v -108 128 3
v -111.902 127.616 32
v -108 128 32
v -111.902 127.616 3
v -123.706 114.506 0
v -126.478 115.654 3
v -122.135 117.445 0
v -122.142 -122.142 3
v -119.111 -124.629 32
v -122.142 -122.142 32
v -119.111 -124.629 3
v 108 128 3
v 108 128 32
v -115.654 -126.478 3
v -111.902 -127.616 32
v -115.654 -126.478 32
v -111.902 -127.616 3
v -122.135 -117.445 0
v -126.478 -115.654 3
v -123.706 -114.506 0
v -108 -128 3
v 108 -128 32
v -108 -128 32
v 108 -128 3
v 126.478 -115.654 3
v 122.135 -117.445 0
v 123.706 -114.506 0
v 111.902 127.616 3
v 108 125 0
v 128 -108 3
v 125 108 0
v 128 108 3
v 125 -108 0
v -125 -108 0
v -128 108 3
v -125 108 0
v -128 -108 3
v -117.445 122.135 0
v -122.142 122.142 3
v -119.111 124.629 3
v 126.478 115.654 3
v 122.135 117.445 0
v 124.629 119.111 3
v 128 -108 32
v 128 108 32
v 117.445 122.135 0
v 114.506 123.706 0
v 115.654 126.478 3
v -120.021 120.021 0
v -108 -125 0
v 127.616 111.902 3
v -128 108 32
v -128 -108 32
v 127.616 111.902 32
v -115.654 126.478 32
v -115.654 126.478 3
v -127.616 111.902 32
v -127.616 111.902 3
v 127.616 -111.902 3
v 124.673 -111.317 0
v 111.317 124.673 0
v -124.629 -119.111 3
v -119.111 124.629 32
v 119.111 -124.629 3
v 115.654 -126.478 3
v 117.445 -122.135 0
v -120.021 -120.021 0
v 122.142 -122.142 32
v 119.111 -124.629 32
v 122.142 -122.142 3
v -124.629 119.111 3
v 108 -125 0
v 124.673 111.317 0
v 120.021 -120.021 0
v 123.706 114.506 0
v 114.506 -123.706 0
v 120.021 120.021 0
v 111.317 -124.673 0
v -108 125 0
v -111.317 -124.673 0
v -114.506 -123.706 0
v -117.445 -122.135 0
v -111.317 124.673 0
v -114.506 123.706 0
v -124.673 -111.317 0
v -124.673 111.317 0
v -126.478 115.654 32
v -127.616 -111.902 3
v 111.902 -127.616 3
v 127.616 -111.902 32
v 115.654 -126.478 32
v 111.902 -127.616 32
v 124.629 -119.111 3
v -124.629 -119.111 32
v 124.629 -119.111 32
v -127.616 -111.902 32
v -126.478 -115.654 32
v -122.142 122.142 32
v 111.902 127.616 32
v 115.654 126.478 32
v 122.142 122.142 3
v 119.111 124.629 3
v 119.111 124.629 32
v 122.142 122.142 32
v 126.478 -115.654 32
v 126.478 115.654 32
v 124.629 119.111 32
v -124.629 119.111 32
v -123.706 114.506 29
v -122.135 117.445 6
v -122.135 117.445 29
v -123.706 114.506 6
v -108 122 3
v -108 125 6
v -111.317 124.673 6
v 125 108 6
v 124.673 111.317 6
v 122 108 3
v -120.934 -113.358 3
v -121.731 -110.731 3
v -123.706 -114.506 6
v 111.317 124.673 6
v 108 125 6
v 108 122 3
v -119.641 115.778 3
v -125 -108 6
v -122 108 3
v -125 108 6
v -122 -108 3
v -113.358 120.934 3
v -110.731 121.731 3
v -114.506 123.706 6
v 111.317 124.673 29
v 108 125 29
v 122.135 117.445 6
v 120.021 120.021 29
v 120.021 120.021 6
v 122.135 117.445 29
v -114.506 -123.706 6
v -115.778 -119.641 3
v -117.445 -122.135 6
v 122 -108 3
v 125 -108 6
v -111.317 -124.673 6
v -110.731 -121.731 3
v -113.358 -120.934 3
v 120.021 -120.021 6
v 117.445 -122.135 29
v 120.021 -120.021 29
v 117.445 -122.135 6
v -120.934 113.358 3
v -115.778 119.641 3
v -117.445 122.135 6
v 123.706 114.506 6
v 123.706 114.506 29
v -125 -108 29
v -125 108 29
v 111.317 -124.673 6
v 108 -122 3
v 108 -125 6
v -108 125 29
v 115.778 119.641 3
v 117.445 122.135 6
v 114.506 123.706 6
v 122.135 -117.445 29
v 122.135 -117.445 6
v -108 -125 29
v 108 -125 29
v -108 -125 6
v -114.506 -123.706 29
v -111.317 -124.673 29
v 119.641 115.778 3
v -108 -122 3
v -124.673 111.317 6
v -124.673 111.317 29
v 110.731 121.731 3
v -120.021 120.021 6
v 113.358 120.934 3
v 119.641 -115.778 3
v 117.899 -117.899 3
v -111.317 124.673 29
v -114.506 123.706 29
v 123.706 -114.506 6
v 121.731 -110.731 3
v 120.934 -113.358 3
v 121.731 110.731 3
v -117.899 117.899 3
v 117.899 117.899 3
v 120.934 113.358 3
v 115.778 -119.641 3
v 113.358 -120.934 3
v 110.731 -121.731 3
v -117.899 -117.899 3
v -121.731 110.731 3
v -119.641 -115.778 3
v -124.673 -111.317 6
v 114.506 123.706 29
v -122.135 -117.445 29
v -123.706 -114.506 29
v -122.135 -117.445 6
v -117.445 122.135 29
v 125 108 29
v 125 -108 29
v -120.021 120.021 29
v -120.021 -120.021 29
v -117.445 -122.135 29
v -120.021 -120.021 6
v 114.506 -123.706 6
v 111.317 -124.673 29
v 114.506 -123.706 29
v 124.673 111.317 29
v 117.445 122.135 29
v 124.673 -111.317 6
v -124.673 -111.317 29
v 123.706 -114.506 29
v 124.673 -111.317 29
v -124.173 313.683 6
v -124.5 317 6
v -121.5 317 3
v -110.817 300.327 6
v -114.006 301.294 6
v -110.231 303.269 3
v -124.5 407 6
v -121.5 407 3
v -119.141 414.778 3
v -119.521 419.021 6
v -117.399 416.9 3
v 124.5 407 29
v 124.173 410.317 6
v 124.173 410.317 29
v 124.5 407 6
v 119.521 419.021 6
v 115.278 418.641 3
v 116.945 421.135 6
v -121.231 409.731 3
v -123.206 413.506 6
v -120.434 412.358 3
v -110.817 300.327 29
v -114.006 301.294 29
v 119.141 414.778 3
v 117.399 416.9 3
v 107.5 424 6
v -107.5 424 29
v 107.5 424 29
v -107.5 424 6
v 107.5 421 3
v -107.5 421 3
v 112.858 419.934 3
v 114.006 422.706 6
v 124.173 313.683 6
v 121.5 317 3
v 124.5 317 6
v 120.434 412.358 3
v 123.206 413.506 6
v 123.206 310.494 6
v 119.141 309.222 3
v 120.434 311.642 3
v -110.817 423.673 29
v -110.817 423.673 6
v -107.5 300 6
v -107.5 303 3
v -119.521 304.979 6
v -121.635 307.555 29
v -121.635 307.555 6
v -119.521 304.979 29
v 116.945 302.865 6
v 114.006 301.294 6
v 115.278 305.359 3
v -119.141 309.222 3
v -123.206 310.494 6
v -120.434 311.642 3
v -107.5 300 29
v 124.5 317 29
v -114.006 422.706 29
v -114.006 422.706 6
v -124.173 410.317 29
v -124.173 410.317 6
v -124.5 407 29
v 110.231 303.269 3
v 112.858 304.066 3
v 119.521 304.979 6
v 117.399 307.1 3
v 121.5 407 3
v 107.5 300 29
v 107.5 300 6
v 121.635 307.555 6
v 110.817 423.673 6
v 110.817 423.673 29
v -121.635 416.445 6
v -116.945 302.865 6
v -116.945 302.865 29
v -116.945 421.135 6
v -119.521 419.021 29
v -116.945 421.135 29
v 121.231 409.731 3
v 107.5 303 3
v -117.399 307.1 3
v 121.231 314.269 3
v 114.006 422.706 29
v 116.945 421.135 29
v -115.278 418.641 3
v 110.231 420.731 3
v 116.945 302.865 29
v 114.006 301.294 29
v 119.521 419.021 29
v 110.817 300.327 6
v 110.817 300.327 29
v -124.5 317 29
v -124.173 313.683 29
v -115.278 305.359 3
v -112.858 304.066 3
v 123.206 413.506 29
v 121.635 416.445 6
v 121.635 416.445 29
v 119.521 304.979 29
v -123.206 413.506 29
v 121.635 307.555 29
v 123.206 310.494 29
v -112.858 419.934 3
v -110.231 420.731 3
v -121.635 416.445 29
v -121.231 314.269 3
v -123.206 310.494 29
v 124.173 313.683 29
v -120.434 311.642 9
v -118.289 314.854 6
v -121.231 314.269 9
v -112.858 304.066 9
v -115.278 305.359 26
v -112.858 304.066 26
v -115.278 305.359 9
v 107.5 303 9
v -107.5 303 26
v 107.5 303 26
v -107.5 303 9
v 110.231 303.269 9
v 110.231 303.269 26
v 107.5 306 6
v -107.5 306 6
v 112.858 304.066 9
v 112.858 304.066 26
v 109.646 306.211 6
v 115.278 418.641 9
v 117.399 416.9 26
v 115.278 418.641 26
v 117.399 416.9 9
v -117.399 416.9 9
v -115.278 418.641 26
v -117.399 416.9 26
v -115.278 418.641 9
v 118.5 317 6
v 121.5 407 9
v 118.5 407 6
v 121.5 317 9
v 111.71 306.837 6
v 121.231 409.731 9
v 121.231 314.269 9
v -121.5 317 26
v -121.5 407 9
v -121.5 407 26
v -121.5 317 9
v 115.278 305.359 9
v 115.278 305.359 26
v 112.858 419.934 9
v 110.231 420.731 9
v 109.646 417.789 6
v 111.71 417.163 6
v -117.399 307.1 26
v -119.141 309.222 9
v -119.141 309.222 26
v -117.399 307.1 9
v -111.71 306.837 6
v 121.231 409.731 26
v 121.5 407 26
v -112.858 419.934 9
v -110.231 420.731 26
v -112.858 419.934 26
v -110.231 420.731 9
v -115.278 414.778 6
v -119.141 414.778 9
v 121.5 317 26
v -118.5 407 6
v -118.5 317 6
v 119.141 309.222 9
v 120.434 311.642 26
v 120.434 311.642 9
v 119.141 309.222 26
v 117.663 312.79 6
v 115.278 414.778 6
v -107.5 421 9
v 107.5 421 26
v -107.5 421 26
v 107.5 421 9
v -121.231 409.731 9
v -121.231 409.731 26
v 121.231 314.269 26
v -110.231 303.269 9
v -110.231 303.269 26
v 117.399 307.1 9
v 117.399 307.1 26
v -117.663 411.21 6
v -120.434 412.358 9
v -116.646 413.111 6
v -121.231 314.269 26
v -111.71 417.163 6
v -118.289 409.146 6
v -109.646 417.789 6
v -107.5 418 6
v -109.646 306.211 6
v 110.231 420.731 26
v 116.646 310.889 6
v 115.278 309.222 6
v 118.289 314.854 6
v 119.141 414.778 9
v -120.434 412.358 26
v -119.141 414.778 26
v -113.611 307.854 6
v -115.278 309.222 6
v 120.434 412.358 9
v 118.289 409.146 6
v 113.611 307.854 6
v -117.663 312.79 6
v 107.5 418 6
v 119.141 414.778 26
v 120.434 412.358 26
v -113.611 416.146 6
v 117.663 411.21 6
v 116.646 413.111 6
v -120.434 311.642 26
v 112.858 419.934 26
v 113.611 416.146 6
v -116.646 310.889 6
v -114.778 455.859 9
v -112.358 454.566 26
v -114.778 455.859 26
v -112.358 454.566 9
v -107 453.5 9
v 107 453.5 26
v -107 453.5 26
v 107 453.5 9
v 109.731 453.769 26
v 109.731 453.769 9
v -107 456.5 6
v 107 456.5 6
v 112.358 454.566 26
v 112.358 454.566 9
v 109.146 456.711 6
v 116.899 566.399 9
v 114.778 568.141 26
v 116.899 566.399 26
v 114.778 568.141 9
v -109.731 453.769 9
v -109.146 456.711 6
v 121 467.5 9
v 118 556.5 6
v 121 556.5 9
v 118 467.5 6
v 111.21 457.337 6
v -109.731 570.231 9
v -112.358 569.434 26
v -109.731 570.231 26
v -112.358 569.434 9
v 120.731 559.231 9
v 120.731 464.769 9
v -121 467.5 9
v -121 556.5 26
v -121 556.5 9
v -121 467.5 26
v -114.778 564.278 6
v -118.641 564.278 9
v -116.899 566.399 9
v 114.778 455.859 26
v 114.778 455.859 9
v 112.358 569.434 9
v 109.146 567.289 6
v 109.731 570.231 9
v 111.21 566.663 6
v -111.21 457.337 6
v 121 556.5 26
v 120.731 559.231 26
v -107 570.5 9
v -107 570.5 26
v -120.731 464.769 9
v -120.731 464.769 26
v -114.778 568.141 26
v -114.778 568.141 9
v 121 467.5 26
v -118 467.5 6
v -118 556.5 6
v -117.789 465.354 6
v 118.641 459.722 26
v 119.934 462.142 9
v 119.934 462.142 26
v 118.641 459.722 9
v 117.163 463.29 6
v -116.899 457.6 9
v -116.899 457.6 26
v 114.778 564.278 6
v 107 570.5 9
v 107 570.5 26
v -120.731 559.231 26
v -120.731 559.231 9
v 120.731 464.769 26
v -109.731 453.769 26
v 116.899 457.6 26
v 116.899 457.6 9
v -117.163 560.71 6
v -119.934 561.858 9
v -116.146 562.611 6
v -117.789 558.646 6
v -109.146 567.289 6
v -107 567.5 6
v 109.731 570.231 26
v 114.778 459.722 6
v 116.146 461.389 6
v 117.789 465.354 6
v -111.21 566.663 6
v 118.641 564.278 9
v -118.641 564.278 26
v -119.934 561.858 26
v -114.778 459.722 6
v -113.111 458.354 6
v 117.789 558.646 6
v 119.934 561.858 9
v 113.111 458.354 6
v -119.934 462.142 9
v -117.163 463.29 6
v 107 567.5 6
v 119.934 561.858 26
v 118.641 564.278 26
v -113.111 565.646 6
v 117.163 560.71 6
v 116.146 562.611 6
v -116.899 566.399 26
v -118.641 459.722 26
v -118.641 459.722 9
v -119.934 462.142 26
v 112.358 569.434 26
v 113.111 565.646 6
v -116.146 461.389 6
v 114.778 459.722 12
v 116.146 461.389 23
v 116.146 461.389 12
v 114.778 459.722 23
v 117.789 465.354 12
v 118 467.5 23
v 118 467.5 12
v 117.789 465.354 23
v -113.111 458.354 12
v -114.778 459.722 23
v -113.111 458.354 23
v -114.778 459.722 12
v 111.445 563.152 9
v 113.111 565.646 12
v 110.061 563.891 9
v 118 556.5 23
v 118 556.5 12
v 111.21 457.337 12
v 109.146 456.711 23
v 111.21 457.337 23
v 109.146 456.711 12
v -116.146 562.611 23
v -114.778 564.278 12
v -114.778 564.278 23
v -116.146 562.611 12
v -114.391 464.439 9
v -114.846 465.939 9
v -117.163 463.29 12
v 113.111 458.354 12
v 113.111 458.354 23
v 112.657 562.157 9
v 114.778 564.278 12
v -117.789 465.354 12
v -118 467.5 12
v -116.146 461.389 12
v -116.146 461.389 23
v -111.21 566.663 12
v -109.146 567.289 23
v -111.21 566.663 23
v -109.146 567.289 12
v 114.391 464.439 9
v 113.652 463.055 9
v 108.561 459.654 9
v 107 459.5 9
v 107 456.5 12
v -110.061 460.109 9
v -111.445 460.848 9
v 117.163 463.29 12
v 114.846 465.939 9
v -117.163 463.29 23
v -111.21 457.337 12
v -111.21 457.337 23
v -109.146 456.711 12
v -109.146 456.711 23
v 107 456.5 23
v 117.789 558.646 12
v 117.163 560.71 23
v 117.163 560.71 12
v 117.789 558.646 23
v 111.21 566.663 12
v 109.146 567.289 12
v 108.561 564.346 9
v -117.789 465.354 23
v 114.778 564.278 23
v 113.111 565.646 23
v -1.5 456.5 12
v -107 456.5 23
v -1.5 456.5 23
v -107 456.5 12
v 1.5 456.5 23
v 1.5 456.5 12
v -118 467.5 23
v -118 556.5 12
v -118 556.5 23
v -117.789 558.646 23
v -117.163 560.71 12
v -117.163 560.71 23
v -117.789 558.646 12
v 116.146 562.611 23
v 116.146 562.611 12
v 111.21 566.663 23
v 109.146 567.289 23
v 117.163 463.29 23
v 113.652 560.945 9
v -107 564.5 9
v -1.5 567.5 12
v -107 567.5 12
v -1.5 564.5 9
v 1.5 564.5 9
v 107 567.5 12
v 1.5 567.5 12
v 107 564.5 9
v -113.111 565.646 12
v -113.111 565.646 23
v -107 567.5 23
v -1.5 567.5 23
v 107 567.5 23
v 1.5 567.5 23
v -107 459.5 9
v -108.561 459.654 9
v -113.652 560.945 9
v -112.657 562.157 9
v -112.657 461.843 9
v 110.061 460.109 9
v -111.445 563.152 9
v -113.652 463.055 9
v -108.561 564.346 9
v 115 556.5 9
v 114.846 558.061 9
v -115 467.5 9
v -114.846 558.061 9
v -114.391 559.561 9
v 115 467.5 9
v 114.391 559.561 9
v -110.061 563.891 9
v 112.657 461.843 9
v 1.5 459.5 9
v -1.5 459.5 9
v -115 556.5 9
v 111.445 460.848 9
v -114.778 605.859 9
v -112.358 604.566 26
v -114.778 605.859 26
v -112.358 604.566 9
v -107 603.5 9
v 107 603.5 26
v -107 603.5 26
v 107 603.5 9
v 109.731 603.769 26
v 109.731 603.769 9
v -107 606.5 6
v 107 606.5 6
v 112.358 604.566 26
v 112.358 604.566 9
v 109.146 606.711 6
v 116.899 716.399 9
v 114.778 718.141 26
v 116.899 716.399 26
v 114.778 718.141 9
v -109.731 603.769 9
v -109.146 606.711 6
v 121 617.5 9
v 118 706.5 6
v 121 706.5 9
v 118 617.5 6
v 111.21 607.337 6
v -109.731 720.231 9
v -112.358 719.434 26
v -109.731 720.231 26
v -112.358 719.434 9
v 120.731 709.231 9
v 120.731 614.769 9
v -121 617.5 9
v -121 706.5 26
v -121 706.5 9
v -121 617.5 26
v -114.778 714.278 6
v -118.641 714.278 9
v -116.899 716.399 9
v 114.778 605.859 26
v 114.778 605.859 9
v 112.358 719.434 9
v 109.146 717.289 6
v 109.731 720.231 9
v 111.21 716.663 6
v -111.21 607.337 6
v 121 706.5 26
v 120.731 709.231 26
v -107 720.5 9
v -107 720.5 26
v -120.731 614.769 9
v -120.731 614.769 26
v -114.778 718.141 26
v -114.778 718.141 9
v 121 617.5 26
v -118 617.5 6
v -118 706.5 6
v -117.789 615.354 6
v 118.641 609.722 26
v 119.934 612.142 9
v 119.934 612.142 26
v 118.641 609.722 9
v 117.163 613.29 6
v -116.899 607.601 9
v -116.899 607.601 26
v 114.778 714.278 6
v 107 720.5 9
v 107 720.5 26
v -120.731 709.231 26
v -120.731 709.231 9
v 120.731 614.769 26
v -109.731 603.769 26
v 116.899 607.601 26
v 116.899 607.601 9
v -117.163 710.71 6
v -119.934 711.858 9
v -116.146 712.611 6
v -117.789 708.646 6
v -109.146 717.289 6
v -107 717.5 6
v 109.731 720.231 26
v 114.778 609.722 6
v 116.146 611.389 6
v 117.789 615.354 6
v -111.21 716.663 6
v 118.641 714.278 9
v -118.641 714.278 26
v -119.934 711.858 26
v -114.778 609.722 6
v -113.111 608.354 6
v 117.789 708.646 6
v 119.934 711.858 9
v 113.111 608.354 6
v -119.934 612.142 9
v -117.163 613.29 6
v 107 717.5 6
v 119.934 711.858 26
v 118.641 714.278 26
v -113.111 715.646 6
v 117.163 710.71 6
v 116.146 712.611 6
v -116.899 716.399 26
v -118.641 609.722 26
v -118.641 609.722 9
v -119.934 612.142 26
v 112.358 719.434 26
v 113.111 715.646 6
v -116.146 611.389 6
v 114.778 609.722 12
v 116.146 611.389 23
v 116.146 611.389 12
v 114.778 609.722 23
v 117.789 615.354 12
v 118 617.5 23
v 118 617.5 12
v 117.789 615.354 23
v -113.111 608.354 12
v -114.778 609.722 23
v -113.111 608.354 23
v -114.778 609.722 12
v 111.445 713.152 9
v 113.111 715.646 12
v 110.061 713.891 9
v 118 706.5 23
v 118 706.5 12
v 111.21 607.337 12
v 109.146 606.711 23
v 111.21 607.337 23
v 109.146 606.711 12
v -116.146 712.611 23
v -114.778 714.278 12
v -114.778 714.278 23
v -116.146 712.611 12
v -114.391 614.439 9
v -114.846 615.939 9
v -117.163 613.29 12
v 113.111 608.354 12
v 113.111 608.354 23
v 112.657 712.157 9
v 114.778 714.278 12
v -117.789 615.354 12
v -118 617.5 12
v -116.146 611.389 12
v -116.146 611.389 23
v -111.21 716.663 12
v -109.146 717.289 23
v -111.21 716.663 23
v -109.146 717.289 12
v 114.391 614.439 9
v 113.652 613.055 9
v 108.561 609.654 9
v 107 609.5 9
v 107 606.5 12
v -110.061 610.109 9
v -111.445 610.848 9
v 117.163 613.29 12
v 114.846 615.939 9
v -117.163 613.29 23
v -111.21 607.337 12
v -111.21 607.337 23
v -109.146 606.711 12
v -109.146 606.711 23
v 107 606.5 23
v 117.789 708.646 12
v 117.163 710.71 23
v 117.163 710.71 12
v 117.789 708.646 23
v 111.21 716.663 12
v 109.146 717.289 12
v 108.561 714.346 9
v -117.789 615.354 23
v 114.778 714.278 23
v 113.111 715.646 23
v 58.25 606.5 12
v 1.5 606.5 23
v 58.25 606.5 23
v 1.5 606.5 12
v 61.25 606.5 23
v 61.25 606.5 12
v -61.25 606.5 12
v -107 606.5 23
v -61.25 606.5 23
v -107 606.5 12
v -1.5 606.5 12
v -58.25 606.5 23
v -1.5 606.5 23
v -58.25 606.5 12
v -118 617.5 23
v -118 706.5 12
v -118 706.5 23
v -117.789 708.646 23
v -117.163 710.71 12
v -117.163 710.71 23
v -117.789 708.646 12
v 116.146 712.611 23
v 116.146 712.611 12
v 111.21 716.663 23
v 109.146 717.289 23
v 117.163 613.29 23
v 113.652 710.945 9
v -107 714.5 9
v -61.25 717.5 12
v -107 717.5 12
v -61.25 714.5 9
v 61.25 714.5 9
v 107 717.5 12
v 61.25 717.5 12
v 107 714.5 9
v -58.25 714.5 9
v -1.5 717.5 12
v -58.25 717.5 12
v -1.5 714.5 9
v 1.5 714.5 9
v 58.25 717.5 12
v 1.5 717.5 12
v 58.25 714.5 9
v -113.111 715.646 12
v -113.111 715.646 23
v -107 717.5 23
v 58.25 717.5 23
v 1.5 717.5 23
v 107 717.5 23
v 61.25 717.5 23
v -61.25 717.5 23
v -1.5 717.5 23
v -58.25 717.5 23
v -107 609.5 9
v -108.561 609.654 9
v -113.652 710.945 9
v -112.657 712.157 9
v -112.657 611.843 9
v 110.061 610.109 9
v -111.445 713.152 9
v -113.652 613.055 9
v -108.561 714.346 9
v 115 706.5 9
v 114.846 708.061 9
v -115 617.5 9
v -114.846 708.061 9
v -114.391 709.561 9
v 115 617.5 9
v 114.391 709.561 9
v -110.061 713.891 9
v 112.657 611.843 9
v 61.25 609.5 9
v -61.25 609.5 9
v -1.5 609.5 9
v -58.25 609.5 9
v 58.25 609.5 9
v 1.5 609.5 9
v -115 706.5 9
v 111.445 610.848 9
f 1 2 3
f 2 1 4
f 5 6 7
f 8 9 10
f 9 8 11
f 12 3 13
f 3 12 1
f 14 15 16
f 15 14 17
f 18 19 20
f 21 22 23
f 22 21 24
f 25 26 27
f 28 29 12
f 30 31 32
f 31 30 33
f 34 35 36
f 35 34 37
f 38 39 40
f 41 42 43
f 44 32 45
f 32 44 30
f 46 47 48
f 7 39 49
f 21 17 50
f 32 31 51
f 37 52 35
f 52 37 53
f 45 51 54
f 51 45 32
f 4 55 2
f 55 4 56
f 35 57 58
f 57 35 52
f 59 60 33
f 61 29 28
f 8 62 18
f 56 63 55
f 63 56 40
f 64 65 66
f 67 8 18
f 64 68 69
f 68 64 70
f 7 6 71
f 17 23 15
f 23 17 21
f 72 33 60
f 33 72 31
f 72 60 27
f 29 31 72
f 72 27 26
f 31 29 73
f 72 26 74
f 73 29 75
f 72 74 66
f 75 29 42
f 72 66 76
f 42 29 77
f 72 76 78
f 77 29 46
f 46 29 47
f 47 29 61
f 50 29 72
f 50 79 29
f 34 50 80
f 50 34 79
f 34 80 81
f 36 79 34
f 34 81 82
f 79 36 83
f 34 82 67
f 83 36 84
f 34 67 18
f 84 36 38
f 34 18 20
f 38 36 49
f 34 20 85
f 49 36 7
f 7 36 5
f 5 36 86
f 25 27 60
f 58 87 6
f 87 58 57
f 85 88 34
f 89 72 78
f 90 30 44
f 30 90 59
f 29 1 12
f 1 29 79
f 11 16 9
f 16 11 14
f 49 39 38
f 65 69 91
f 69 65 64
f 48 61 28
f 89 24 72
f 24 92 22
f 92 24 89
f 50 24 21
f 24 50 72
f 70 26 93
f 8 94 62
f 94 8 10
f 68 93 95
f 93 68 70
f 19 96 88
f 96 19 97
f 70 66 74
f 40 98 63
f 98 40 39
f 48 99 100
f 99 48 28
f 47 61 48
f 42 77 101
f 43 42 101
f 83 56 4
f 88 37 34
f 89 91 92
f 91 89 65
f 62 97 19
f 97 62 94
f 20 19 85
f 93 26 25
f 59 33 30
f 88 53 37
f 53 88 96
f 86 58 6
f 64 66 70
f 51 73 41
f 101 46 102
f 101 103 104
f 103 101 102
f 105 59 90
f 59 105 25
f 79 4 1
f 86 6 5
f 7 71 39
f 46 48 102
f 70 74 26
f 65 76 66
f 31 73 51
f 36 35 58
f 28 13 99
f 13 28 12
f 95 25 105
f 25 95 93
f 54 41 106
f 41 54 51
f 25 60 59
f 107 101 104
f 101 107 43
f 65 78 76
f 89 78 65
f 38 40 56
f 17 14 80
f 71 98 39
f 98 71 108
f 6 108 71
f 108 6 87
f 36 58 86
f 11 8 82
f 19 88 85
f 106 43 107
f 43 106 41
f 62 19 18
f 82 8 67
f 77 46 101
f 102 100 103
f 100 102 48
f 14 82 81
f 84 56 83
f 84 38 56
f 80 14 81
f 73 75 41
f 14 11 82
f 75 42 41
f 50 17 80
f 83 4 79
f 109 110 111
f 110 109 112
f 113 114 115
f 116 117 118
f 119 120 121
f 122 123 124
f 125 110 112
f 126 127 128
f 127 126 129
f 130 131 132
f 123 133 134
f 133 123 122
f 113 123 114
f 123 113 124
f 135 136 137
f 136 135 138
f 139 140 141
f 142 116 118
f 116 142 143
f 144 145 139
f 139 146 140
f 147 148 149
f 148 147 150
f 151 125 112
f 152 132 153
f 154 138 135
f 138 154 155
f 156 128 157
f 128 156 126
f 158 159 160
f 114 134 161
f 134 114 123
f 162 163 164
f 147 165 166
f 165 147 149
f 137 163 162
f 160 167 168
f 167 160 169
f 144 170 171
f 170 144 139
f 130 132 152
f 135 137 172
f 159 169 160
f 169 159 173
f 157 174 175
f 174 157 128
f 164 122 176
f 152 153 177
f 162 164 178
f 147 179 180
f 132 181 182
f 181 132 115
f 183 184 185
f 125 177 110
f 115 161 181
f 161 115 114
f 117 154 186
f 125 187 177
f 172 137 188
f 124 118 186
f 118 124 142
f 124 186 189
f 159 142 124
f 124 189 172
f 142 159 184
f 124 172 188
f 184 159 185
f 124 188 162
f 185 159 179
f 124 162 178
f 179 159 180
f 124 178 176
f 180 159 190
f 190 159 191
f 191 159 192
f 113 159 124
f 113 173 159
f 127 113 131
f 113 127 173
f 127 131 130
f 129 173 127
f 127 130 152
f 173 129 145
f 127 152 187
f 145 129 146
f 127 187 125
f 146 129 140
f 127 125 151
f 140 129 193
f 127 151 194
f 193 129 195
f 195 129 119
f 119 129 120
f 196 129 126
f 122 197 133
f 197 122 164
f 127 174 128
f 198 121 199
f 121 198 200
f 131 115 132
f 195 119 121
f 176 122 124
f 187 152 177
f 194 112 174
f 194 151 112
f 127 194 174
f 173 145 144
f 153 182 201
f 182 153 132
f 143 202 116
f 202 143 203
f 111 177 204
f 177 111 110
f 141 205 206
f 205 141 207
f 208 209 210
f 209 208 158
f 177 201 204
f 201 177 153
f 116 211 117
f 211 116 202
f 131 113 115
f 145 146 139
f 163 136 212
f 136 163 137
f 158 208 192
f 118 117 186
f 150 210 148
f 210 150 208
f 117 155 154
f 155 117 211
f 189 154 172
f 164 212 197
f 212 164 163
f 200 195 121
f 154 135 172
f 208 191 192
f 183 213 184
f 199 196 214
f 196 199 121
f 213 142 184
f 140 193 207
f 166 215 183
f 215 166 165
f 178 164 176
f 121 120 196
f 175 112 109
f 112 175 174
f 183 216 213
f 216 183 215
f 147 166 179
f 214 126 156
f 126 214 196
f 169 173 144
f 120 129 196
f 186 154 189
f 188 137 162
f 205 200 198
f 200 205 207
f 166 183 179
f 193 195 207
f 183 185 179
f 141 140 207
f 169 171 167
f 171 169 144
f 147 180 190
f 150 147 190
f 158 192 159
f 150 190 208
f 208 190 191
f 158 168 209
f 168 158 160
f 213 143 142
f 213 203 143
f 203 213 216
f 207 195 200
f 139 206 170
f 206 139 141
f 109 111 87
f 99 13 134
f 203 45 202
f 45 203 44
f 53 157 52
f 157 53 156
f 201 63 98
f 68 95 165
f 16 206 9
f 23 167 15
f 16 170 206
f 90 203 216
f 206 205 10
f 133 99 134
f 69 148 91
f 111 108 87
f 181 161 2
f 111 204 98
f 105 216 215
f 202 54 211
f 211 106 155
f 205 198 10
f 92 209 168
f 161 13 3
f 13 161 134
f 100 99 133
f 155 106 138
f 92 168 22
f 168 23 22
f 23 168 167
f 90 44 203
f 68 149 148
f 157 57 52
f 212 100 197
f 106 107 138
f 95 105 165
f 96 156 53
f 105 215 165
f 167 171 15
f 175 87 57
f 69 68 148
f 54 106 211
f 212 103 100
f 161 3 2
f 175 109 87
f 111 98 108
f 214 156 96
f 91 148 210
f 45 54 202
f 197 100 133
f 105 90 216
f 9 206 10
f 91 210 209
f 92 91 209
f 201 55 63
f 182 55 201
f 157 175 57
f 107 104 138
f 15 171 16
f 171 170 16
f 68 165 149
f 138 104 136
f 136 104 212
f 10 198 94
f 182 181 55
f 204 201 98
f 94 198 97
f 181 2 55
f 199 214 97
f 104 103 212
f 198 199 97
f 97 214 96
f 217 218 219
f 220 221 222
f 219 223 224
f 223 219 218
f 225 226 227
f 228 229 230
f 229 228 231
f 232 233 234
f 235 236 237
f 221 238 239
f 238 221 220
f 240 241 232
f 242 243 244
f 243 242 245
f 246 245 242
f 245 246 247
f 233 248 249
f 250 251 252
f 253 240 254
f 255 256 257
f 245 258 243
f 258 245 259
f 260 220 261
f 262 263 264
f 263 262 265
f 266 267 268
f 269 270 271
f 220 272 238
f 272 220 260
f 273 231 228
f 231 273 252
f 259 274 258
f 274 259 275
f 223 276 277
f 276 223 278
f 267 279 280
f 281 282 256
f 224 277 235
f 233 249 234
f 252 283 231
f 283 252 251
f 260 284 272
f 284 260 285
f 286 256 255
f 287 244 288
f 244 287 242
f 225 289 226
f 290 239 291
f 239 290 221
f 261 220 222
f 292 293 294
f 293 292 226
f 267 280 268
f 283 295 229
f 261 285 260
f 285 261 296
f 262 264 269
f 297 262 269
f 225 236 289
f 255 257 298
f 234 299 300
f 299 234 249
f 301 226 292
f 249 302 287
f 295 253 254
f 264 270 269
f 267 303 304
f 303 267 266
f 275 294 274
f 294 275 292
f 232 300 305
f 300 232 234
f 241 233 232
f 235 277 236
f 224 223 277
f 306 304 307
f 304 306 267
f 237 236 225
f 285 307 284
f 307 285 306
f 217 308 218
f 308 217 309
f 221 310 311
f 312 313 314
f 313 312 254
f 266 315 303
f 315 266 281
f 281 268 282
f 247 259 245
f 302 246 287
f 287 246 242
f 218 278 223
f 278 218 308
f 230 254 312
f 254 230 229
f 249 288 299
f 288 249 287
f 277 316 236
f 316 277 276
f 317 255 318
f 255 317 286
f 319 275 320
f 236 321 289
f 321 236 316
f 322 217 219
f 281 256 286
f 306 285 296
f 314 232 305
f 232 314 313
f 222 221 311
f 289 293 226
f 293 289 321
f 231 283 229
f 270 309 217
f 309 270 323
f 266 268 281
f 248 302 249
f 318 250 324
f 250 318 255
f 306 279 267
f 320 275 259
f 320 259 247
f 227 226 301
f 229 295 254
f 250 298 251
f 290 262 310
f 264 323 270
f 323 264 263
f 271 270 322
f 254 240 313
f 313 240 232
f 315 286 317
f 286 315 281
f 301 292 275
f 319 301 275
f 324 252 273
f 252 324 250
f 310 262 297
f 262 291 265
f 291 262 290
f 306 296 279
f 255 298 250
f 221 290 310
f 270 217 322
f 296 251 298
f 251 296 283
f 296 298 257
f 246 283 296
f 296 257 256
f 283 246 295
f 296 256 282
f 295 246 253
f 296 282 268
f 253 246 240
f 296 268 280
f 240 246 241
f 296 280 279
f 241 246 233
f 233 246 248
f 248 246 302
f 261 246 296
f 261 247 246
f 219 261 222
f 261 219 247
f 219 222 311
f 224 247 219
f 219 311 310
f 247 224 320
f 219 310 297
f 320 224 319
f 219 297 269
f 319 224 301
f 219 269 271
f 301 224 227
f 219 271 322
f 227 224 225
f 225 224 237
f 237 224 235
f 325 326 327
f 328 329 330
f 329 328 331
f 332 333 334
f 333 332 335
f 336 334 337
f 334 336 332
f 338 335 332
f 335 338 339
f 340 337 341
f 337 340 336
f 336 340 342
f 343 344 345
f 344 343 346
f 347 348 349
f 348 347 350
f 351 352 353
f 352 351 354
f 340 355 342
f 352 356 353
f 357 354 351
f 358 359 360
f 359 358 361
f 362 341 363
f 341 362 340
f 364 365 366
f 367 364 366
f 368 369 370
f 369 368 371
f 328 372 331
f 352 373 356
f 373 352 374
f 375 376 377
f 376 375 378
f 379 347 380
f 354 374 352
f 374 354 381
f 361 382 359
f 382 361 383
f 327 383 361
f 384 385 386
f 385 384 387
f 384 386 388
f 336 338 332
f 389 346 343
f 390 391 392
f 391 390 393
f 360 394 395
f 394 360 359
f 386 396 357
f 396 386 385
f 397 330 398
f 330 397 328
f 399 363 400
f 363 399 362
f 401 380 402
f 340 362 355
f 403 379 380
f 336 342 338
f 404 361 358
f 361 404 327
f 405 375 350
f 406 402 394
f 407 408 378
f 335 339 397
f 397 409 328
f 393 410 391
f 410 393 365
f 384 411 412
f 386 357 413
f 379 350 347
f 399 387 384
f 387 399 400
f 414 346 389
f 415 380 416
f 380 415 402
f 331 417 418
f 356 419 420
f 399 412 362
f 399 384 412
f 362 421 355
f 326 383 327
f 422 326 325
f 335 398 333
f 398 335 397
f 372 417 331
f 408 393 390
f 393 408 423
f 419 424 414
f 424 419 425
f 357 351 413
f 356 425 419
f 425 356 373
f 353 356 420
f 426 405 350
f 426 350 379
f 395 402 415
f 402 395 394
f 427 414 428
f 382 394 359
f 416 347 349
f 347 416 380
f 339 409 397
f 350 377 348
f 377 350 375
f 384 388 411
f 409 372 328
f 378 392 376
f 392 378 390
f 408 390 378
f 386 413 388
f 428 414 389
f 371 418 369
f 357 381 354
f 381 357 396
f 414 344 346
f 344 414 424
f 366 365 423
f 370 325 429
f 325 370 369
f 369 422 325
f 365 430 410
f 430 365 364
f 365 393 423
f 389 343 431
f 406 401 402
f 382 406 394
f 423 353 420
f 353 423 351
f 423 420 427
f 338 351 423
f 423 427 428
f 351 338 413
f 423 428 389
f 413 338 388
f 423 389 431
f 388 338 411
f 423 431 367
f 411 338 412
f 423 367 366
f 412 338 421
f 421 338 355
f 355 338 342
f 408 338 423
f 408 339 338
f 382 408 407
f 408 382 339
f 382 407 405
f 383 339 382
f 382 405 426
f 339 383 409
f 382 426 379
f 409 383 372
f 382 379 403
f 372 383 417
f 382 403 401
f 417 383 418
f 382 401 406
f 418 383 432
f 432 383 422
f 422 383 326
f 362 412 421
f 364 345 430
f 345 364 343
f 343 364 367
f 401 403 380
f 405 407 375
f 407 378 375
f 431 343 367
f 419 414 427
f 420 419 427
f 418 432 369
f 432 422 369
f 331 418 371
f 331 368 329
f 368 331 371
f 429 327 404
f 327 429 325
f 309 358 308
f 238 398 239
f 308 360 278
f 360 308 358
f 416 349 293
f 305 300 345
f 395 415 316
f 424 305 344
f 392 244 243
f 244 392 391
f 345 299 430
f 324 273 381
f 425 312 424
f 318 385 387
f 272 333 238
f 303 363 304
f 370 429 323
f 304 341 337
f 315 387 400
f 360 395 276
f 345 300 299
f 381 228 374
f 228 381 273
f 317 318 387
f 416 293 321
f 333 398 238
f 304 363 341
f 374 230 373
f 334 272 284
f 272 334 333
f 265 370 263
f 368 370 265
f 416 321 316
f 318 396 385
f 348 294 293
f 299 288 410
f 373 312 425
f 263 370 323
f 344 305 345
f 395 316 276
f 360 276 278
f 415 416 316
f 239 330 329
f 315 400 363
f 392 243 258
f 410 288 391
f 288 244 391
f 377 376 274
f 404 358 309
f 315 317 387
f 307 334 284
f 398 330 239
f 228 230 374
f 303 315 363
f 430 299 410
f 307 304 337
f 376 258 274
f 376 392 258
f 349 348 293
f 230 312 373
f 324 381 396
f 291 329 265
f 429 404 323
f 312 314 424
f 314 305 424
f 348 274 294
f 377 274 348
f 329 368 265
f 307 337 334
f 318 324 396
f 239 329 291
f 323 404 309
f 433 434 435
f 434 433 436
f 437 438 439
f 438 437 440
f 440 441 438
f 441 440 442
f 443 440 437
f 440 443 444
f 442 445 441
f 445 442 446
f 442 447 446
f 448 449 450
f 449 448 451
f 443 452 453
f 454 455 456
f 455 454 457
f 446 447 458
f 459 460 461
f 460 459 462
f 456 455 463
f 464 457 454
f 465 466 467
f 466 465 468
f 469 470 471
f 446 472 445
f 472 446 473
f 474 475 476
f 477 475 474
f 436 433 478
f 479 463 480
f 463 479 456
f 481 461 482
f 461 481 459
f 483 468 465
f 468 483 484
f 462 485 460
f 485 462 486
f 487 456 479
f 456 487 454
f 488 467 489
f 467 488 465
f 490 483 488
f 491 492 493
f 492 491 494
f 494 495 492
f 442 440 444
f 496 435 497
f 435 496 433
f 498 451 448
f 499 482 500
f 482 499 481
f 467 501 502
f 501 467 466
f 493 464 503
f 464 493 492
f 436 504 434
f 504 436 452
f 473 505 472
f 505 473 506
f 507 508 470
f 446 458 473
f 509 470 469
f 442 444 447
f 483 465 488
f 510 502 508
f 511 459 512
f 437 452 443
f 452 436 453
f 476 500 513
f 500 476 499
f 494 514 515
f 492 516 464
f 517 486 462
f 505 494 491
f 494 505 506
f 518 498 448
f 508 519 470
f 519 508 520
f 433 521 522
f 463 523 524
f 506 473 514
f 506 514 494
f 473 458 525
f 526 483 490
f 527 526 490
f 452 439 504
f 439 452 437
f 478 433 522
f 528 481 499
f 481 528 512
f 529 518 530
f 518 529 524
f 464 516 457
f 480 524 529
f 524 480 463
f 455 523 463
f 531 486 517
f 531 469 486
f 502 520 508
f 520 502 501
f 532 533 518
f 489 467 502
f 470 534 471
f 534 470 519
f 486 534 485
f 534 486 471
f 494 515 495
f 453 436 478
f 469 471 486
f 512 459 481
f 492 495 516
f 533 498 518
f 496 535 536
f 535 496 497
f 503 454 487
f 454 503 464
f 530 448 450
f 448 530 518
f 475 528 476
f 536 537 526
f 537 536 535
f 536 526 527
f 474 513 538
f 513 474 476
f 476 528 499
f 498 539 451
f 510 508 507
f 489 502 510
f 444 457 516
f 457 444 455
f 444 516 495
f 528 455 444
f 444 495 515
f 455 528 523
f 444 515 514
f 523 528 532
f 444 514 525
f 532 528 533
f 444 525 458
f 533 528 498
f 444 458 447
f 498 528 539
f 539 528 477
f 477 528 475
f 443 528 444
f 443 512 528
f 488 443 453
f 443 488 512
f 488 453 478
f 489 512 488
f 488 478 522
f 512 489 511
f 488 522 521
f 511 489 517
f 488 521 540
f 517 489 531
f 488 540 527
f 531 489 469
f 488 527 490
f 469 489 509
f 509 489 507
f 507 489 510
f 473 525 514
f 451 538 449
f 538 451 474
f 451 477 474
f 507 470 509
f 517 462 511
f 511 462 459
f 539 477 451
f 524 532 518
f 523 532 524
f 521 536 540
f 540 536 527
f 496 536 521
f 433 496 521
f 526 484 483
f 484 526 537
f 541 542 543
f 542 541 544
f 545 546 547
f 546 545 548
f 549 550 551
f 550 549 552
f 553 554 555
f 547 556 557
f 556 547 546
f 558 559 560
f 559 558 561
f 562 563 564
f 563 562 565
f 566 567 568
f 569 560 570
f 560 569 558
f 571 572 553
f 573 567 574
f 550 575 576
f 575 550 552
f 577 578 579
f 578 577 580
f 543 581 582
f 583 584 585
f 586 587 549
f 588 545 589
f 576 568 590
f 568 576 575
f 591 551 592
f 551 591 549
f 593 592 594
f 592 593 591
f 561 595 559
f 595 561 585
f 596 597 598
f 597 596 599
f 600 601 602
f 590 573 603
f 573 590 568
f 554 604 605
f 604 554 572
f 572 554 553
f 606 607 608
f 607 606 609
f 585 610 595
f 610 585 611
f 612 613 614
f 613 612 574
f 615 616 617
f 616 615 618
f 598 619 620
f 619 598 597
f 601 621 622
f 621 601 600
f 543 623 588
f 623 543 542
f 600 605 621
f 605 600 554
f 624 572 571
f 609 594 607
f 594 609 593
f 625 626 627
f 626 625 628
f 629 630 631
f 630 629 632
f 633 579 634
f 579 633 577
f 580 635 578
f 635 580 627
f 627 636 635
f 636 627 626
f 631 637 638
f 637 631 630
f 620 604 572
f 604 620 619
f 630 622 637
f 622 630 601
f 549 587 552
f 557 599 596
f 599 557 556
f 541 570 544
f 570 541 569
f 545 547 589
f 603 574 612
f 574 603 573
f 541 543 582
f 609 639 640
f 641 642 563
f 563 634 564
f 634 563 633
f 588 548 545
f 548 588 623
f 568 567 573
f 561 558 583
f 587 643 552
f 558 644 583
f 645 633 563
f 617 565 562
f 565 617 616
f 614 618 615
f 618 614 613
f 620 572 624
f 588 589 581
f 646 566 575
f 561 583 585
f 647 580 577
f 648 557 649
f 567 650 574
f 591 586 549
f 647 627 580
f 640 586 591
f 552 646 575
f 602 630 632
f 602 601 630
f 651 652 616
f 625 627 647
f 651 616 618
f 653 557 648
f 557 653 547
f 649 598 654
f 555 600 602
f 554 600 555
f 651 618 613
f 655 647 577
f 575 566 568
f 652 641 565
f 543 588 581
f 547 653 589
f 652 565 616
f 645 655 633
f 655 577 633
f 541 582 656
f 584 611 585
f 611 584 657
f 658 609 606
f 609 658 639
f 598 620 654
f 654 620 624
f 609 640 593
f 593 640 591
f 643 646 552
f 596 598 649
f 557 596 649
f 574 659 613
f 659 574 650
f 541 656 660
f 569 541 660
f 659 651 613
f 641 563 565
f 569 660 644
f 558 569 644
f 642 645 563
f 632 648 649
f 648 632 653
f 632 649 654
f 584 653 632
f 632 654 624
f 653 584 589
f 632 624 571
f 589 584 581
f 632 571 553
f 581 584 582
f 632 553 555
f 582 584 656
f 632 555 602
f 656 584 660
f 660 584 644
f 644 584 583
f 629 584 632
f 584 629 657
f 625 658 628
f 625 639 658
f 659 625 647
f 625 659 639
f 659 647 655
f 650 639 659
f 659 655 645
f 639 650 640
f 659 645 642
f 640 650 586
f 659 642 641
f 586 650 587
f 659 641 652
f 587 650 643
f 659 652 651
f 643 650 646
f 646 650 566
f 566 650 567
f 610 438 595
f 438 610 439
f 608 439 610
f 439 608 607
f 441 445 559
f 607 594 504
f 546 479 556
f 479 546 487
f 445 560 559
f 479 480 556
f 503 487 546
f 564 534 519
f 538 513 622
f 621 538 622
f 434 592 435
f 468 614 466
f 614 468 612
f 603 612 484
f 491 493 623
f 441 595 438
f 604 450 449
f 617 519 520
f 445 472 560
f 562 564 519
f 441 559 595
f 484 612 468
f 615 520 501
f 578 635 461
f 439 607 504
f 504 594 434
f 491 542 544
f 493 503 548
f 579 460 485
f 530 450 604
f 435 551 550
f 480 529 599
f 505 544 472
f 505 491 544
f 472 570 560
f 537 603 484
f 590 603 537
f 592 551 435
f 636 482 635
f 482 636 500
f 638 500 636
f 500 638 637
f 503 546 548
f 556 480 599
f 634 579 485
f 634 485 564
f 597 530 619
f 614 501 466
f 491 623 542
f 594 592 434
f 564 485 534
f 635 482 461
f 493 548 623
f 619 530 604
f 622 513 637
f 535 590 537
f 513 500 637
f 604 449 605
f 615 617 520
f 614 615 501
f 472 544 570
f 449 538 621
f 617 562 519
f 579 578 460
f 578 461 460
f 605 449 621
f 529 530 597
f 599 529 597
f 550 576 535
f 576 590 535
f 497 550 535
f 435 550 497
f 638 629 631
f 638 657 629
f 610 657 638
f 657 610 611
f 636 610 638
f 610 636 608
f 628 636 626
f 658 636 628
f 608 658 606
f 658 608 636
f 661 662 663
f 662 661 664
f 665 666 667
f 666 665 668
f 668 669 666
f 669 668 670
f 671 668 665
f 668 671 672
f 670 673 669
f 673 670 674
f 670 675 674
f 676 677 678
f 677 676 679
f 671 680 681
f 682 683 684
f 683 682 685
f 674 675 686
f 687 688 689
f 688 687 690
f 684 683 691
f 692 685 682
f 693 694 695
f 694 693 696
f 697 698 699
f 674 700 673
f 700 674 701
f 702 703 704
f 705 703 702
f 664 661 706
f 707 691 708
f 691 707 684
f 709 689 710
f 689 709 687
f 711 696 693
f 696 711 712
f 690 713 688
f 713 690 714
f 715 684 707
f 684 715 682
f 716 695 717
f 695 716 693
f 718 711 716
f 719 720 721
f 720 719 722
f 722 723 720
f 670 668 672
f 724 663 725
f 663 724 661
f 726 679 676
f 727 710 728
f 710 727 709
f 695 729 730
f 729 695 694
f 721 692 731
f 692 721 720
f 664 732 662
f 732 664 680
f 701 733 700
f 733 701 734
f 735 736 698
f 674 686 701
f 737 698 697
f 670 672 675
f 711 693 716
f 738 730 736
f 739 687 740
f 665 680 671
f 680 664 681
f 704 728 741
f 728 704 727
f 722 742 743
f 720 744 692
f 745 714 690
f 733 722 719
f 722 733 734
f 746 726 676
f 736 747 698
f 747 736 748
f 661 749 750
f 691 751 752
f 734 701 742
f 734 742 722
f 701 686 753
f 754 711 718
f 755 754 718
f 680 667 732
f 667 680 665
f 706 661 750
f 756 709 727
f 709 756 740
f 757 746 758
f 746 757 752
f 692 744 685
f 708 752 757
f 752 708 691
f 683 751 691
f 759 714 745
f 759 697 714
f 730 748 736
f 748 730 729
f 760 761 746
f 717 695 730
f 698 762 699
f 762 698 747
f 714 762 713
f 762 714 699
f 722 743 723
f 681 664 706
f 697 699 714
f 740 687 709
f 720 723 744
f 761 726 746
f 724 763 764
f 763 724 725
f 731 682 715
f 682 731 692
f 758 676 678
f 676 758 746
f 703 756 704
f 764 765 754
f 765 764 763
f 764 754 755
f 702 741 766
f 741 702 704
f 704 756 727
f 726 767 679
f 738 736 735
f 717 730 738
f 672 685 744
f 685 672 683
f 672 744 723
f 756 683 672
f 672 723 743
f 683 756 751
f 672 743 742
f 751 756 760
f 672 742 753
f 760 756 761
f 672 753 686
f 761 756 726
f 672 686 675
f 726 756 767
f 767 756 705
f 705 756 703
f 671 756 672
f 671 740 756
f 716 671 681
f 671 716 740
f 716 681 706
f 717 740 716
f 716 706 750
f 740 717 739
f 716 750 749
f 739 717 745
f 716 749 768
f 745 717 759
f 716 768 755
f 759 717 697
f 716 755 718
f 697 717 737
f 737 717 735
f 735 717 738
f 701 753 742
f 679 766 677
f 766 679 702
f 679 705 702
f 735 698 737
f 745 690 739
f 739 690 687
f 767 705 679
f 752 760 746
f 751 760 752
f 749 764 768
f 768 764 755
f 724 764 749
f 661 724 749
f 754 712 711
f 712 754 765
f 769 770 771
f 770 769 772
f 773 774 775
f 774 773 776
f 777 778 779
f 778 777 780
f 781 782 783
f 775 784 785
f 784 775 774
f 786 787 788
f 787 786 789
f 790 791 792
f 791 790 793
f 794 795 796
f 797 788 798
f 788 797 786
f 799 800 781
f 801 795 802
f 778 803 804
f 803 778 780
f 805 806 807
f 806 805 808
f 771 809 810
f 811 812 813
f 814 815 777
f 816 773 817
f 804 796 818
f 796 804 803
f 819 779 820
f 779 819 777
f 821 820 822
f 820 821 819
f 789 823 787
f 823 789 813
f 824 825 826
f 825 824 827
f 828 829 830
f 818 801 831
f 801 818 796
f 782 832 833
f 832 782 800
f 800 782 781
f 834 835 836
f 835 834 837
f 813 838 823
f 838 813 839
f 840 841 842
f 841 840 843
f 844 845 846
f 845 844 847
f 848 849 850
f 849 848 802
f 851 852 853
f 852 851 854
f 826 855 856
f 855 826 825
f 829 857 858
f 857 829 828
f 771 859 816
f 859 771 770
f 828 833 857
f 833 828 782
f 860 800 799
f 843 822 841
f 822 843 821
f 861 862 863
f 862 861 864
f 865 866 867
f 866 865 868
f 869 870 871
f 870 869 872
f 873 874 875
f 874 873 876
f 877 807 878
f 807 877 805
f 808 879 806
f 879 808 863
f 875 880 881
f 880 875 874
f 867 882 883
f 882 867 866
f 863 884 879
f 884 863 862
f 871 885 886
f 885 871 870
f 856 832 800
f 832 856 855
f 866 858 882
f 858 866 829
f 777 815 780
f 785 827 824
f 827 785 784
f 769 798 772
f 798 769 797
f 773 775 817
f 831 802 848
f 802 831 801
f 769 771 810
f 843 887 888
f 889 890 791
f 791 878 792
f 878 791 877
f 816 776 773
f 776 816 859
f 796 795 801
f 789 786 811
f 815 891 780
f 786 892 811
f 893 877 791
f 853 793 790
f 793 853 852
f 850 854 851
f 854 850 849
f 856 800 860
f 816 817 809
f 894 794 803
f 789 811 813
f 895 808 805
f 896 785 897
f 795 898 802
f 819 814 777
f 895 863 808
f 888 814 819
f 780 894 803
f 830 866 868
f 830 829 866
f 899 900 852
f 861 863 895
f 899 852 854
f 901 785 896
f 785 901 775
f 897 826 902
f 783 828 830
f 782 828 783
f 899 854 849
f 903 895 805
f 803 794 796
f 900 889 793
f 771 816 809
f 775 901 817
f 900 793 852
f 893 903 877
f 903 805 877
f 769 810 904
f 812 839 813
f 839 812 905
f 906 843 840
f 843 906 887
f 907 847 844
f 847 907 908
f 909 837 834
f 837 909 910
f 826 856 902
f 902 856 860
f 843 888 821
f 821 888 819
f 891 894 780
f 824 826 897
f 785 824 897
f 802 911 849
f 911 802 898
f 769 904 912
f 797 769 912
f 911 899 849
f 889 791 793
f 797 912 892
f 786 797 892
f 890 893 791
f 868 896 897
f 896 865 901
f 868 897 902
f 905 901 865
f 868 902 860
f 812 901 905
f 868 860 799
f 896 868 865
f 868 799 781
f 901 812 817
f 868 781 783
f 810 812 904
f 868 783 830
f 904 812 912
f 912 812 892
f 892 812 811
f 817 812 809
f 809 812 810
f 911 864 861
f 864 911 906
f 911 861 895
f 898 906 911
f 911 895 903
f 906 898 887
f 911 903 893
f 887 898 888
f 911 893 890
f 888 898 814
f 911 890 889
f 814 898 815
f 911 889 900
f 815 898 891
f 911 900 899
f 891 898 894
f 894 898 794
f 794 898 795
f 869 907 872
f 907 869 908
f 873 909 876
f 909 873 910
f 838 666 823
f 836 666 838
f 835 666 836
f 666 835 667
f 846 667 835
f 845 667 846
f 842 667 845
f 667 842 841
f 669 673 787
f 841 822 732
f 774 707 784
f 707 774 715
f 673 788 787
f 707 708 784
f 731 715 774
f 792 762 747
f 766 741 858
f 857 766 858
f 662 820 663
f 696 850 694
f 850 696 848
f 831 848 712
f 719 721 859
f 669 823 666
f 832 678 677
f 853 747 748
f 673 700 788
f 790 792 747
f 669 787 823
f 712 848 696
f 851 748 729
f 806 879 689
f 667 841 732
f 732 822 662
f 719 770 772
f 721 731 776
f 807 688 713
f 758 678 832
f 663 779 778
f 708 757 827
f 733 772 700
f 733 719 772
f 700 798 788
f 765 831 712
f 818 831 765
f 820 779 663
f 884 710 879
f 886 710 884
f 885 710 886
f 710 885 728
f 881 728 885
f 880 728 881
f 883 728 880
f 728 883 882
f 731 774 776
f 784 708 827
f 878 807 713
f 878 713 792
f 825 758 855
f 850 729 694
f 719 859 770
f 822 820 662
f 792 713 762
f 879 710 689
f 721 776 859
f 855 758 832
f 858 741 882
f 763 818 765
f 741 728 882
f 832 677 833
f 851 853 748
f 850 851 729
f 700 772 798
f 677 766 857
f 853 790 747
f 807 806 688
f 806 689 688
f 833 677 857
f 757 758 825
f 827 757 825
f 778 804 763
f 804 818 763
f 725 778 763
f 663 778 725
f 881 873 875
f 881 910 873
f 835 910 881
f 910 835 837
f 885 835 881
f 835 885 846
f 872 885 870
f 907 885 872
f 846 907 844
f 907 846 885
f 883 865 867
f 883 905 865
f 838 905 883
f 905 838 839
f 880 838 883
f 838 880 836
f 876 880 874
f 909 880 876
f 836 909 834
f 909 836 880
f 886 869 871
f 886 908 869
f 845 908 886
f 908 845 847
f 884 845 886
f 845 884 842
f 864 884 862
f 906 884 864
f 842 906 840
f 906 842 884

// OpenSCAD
wall=3;
height=32;
marge = 1;

position_x = 150;


l1 = 256;
p1 = l1;
h1 = height;
r1 = 20;

l2 =  l1 - wall*2     - marge;
p2 = (p1 - wall*2) /2 - marge;
h2 = h1-wall*2;
r2 = r1 - wall;

l3 = l2 - wall*2 - marge;
p3 = p2 - wall*2 - marge;
h3 = h2 -wall*2;
r3 = r2 - wall;

translate([0,0,0])
	box(l1,p1,h1,r1);

translate([0,position_x*2,0]) {
	translate([0,p2/2,wall]) 
		box(l2,p2,h2,r2);
	/*translate([0,-p2/2,wall]) 
		box(l2,p2,h2,r2);//*/
}

translate([0,position_x*3,0])
	translate([0,p2/2,wall*2]) 
		split_box(l3,p3,h3,r3);

translate([0,position_x*4,0])
	translate([0,p2/2,wall*2]) 
		split_4_box(l3,p3,h3,r3);


module split_box(largeur, profondeur, hauteur, rayon) {
	box(largeur, profondeur, hauteur, rayon, true);
	translate([-wall/2, -profondeur/2+wall, 0])
		cube([wall, profondeur-wall*2, hauteur-wall]);
}

module split_4_box(largeur, profondeur, hauteur, rayon) {
	split_box(largeur, profondeur, hauteur, rayon, true);
	translate([-wall/2-wall/4+largeur/4, -profondeur/2+wall, 0])
		cube([wall, profondeur-wall*2, hauteur-wall]);
	translate([-wall/2+wall/4-largeur/4, -profondeur/2+wall, 0])
		cube([wall, profondeur-wall*2, hauteur-wall]);
}


module box(largeur, profondeur, hauteur, rayon, corner = true) {
	difference() {
		rounded_cube(largeur, profondeur, hauteur, rayon);
		translate([0,0,wall])
			rounded_cube(largeur-wall*2, profondeur-wall*2, hauteur, rayon-wall);
		if (corner) {
			translate([0,0,hauteur-wall])
				rounded_cube(largeur, profondeur, hauteur, rayon);
		}
	}
}

module rounded_cube(largeur, profondeur, hauteur, rayon) {
	x = largeur/2-rayon;
	y = profondeur/2-rayon;
	hull() {
		translate([-x, -y, 0]) 
			pillar(hauteur, rayon);
		translate([ x, -y, 0])
			pillar(hauteur, rayon);
		translate([ x,  y, 0])
			pillar(hauteur, rayon);
		translate([-x,  y, 0])
			pillar(hauteur, rayon);
	}
}

module pillar(hauteur, rayon) {
	translate([0,0,wall])
		cylinder(hauteur-wall, rayon, rayon, $fn=32);
	cylinder(wall, rayon-wall, rayon, $fn=32);
}
